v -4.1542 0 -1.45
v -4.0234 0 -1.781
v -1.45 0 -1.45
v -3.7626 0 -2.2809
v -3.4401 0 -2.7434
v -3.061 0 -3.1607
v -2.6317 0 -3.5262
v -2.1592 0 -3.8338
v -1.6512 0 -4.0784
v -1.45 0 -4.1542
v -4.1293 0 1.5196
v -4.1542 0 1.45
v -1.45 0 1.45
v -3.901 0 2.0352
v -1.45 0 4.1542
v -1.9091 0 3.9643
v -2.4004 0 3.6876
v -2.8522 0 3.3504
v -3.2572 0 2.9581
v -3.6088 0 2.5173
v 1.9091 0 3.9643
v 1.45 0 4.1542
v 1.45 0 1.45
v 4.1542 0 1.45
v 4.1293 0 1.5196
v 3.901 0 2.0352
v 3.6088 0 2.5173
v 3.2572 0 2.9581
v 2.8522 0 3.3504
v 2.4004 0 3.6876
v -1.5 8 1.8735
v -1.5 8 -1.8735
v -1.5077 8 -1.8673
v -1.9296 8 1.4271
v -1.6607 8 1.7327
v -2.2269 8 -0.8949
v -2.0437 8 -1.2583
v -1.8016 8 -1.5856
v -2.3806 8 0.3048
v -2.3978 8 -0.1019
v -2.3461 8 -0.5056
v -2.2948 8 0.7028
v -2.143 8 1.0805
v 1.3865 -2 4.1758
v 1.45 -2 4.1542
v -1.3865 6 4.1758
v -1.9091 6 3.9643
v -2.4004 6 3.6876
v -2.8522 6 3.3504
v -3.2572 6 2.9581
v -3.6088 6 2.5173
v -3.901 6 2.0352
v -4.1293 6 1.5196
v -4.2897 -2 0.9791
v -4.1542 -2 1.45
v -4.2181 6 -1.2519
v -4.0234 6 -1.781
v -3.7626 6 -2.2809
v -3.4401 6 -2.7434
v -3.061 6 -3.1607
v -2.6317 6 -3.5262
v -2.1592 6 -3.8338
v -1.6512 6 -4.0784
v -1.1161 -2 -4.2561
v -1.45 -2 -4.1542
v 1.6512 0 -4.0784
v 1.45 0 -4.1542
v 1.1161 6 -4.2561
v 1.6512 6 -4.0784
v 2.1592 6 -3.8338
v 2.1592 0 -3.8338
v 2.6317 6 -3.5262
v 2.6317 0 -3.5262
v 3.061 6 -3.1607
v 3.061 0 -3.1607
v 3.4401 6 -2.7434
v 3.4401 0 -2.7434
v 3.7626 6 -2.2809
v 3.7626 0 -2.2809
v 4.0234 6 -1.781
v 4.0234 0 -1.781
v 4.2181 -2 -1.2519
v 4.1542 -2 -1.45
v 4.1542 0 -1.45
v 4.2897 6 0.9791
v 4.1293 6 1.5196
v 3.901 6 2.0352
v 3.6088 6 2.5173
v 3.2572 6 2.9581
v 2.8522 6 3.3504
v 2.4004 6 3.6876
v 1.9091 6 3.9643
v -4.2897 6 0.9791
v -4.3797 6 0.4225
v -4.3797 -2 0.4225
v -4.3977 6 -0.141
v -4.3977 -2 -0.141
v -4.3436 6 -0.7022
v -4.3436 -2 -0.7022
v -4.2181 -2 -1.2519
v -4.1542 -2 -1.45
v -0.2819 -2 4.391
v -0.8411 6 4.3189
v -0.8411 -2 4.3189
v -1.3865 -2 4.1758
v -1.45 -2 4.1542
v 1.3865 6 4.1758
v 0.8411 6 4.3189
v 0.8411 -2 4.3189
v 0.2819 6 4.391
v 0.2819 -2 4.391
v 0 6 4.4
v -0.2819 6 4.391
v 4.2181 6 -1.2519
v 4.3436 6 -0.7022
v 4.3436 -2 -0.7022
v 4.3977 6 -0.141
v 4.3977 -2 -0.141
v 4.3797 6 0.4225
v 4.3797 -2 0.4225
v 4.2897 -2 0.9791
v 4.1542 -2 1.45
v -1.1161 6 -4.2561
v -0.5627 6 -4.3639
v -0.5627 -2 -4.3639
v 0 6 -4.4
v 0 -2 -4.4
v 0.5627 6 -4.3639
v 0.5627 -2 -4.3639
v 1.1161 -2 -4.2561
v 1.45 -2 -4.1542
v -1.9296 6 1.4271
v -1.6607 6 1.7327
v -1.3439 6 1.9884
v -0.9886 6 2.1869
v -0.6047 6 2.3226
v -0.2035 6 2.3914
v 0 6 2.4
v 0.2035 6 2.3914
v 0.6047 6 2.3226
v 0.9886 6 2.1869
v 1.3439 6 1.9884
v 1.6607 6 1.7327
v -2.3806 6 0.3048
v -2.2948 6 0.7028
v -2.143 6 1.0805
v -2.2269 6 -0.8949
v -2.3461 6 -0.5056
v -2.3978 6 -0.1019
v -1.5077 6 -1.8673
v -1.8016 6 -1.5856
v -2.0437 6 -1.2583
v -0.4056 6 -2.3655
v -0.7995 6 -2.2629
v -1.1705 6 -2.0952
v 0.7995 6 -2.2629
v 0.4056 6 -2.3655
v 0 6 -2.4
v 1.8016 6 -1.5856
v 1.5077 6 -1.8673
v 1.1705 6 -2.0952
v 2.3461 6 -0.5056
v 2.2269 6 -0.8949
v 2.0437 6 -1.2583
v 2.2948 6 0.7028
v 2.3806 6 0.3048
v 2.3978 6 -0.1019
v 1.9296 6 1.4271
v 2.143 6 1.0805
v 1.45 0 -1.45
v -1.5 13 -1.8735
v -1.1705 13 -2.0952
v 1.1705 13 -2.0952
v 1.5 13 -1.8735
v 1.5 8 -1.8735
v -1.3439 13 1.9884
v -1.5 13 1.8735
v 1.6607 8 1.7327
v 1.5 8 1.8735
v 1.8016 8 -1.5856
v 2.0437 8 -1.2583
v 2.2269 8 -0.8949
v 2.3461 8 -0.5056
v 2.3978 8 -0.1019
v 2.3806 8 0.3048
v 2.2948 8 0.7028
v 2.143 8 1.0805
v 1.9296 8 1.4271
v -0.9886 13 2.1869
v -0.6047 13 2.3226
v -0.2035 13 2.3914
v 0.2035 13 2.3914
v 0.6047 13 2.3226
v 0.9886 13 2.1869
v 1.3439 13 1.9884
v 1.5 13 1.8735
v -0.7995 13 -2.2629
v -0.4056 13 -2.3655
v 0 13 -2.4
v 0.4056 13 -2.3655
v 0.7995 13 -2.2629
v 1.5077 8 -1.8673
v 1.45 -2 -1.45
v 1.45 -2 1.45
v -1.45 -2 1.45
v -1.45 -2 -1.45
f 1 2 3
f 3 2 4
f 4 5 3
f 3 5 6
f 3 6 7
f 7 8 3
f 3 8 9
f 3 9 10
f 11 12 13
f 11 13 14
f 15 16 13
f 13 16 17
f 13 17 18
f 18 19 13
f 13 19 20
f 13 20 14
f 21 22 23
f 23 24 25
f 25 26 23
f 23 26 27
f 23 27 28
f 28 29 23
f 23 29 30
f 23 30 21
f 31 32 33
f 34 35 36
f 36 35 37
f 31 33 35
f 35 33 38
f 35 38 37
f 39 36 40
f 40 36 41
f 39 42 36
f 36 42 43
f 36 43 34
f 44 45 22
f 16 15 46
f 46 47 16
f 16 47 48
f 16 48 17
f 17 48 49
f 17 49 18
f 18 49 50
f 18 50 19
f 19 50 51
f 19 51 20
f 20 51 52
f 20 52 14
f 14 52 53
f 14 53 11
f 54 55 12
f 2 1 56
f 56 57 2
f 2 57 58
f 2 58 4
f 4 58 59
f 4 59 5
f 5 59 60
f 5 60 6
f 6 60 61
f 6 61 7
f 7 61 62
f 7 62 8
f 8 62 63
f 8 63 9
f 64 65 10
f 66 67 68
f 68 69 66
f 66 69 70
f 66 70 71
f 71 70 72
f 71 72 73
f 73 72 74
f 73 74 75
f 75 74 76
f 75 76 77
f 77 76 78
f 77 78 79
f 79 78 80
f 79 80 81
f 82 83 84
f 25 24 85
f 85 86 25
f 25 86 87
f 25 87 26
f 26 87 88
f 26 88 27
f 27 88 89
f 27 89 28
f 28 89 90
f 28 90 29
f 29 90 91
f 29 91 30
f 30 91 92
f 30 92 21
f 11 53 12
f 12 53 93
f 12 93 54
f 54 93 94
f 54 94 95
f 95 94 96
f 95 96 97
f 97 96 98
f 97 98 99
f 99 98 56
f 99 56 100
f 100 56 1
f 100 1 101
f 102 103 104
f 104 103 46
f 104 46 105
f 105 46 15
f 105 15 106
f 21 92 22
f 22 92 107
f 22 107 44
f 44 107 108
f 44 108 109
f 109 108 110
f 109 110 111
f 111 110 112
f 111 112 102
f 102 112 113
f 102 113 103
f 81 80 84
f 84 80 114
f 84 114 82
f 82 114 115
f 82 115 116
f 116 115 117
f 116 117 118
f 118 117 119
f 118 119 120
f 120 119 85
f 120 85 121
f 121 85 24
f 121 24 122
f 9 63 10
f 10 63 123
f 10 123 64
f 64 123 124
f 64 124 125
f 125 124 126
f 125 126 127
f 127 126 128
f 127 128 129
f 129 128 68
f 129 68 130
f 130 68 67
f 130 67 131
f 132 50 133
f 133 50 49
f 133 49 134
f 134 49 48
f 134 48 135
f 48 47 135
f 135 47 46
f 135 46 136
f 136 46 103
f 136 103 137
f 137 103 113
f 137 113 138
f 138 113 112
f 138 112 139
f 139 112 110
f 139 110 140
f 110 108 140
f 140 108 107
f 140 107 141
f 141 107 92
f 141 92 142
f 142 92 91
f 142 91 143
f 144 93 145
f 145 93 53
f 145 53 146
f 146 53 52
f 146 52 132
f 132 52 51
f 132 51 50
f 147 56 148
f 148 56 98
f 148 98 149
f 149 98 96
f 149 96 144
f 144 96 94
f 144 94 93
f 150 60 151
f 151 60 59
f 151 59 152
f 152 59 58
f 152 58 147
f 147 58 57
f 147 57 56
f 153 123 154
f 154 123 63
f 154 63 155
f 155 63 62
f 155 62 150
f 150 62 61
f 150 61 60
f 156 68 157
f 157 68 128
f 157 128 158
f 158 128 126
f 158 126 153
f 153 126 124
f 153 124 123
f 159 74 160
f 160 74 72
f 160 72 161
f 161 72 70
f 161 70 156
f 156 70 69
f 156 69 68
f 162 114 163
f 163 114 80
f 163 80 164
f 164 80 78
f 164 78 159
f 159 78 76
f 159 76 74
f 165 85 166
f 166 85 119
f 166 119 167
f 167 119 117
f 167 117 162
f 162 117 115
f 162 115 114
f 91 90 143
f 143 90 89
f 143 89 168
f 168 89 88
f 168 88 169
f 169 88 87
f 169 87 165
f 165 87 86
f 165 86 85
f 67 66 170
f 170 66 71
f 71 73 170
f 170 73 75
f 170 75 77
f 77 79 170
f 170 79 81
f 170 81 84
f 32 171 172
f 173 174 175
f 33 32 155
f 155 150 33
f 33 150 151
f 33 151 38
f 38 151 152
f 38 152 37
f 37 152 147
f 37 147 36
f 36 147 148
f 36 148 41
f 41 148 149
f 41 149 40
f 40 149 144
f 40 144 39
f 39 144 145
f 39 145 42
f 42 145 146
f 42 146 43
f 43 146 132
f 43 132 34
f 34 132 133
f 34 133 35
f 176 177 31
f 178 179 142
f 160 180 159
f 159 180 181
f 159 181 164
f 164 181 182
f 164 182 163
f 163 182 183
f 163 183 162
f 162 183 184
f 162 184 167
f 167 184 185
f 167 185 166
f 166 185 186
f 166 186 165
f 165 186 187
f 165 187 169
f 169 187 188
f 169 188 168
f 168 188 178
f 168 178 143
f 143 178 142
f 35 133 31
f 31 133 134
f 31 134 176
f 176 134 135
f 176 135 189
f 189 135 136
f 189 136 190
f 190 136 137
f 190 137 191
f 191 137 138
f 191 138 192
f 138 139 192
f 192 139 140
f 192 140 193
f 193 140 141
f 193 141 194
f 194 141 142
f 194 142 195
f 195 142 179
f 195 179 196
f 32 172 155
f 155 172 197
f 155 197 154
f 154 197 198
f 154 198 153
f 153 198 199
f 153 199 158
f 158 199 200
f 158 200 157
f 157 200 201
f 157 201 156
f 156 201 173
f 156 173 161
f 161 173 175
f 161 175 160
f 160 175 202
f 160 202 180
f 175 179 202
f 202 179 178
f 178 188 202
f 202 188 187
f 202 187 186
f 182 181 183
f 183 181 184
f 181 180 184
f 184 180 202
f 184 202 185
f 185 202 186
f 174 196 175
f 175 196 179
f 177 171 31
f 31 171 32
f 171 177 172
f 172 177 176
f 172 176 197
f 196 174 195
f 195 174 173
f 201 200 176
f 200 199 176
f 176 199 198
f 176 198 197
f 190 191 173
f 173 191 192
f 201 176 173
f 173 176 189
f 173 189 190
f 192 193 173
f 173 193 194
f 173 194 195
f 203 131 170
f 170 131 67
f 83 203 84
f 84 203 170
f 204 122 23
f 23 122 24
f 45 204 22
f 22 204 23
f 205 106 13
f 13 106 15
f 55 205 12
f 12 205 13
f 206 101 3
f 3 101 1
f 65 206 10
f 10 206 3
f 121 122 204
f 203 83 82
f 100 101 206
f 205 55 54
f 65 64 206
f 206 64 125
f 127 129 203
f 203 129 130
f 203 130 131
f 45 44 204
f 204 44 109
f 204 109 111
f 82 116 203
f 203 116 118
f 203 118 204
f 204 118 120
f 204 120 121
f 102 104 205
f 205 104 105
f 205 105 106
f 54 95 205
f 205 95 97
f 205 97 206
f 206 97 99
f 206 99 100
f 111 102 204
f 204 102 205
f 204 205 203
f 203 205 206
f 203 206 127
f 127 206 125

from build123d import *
from build123d.topology import SkipClean

# Parameters (mm, degrees)
SKETCH1_R           = 4.4
BOSS_EXTRUDE1_DEPTH = 6
SKETCH2_R           = 2.4
BOSS_EXTRUDE2_DEPTH = 2
BOSS_EXTRUDE3_DEPTH = 5
BOSS_EXTRUDE4_START = 2
SKETCH4_W           = 2.9
SKETCH4_H           = 2.9
BOSS_EXTRUDE4_DEPTH = 2


with BuildPart() as part:
    # Sketch1 → Boss-Extrude1 (new body)
    with BuildSketch(Plane(origin=(0, 0, 0), x_dir=(1, 0, 0), z_dir=(0, 1, 0))):
        with Locations(Location((0, 0, 0), (0, 0, 270))):
            Circle(SKETCH1_R)
    extrude(amount=BOSS_EXTRUDE1_DEPTH)

    # Sketch2 → Boss-Extrude2 (add)
    with BuildSketch(Plane(origin=(0, 6, 0), x_dir=(1, 0, 0), z_dir=(0, 1, 0))):
        with Locations(Location((0, 0, 0), (0, 0, 270))):
            Circle(SKETCH2_R)
    extrude(amount=BOSS_EXTRUDE2_DEPTH)

    # Sketch3 → Boss-Extrude3 (add)
    with BuildSketch(Plane(origin=(0, 8, 0), x_dir=(1, 0, 0), z_dir=(0, 1, 0))):
        with BuildLine():
            Line((-1.5, 1.8734994), (-1.5, -1.8734994))
            ThreePointArc((-1.5, -1.8734994), (0, -2.4), (1.5, -1.8734994))
            Line((1.5, -1.8734994), (1.5, 1.8734994))
            ThreePointArc((1.5, 1.8734994), (0, 2.4), (-1.5, 1.8734994))
        make_face()
    extrude(amount=BOSS_EXTRUDE3_DEPTH)

    # Sketch4 → Boss-Extrude4 (add)
    with SkipClean():  # the faces are left unmerged after this step: merging them gives an invalid solid
        with BuildSketch(Plane.XZ.offset(BOSS_EXTRUDE4_START)):
            with BuildLine():
                Line((1.45, -1.45), (-1.45, -1.45))
                Line((-1.45, -1.45), (-1.45, -4.154214727))
                ThreePointArc((-1.45, -4.154214727), (0, -4.4), (1.45, -4.154214727))
                Line((1.45, -4.154214727), (1.45, -1.45))
            make_face()
            Rectangle(SKETCH4_W, SKETCH4_H)
            with BuildLine():
                Line((4.154214727, 1.45), (1.45, 1.45))
                Line((1.45, 1.45), (1.45, -1.45))
                Line((1.45, -1.45), (4.154214727, -1.45))
                ThreePointArc((4.154214727, -1.45), (4.338118532, -0.735341825), (4.4, 0))
                ThreePointArc((4.4, 0), (4.338118532, 0.735341825), (4.154214727, 1.45))
            make_face()
            with BuildLine():
                Line((-1.45, 1.45), (-4.154214727, 1.45))
                ThreePointArc((-4.154214727, 1.45), (-4.4, 0), (-4.154214727, -1.45))
                Line((-4.154214727, -1.45), (-1.45, -1.45))
                Line((-1.45, -1.45), (-1.45, 1.45))
            make_face()
            with BuildLine():
                Line((-1.45, 4.154214727), (-1.45, 1.45))
                Line((-1.45, 1.45), (1.45, 1.45))
                Line((1.45, 1.45), (1.45, 4.154214727))
                ThreePointArc((1.45, 4.154214727), (0, 4.4), (-1.45, 4.154214727))
            make_face()
        extrude(amount=-BOSS_EXTRUDE4_DEPTH)


solid = part.part
